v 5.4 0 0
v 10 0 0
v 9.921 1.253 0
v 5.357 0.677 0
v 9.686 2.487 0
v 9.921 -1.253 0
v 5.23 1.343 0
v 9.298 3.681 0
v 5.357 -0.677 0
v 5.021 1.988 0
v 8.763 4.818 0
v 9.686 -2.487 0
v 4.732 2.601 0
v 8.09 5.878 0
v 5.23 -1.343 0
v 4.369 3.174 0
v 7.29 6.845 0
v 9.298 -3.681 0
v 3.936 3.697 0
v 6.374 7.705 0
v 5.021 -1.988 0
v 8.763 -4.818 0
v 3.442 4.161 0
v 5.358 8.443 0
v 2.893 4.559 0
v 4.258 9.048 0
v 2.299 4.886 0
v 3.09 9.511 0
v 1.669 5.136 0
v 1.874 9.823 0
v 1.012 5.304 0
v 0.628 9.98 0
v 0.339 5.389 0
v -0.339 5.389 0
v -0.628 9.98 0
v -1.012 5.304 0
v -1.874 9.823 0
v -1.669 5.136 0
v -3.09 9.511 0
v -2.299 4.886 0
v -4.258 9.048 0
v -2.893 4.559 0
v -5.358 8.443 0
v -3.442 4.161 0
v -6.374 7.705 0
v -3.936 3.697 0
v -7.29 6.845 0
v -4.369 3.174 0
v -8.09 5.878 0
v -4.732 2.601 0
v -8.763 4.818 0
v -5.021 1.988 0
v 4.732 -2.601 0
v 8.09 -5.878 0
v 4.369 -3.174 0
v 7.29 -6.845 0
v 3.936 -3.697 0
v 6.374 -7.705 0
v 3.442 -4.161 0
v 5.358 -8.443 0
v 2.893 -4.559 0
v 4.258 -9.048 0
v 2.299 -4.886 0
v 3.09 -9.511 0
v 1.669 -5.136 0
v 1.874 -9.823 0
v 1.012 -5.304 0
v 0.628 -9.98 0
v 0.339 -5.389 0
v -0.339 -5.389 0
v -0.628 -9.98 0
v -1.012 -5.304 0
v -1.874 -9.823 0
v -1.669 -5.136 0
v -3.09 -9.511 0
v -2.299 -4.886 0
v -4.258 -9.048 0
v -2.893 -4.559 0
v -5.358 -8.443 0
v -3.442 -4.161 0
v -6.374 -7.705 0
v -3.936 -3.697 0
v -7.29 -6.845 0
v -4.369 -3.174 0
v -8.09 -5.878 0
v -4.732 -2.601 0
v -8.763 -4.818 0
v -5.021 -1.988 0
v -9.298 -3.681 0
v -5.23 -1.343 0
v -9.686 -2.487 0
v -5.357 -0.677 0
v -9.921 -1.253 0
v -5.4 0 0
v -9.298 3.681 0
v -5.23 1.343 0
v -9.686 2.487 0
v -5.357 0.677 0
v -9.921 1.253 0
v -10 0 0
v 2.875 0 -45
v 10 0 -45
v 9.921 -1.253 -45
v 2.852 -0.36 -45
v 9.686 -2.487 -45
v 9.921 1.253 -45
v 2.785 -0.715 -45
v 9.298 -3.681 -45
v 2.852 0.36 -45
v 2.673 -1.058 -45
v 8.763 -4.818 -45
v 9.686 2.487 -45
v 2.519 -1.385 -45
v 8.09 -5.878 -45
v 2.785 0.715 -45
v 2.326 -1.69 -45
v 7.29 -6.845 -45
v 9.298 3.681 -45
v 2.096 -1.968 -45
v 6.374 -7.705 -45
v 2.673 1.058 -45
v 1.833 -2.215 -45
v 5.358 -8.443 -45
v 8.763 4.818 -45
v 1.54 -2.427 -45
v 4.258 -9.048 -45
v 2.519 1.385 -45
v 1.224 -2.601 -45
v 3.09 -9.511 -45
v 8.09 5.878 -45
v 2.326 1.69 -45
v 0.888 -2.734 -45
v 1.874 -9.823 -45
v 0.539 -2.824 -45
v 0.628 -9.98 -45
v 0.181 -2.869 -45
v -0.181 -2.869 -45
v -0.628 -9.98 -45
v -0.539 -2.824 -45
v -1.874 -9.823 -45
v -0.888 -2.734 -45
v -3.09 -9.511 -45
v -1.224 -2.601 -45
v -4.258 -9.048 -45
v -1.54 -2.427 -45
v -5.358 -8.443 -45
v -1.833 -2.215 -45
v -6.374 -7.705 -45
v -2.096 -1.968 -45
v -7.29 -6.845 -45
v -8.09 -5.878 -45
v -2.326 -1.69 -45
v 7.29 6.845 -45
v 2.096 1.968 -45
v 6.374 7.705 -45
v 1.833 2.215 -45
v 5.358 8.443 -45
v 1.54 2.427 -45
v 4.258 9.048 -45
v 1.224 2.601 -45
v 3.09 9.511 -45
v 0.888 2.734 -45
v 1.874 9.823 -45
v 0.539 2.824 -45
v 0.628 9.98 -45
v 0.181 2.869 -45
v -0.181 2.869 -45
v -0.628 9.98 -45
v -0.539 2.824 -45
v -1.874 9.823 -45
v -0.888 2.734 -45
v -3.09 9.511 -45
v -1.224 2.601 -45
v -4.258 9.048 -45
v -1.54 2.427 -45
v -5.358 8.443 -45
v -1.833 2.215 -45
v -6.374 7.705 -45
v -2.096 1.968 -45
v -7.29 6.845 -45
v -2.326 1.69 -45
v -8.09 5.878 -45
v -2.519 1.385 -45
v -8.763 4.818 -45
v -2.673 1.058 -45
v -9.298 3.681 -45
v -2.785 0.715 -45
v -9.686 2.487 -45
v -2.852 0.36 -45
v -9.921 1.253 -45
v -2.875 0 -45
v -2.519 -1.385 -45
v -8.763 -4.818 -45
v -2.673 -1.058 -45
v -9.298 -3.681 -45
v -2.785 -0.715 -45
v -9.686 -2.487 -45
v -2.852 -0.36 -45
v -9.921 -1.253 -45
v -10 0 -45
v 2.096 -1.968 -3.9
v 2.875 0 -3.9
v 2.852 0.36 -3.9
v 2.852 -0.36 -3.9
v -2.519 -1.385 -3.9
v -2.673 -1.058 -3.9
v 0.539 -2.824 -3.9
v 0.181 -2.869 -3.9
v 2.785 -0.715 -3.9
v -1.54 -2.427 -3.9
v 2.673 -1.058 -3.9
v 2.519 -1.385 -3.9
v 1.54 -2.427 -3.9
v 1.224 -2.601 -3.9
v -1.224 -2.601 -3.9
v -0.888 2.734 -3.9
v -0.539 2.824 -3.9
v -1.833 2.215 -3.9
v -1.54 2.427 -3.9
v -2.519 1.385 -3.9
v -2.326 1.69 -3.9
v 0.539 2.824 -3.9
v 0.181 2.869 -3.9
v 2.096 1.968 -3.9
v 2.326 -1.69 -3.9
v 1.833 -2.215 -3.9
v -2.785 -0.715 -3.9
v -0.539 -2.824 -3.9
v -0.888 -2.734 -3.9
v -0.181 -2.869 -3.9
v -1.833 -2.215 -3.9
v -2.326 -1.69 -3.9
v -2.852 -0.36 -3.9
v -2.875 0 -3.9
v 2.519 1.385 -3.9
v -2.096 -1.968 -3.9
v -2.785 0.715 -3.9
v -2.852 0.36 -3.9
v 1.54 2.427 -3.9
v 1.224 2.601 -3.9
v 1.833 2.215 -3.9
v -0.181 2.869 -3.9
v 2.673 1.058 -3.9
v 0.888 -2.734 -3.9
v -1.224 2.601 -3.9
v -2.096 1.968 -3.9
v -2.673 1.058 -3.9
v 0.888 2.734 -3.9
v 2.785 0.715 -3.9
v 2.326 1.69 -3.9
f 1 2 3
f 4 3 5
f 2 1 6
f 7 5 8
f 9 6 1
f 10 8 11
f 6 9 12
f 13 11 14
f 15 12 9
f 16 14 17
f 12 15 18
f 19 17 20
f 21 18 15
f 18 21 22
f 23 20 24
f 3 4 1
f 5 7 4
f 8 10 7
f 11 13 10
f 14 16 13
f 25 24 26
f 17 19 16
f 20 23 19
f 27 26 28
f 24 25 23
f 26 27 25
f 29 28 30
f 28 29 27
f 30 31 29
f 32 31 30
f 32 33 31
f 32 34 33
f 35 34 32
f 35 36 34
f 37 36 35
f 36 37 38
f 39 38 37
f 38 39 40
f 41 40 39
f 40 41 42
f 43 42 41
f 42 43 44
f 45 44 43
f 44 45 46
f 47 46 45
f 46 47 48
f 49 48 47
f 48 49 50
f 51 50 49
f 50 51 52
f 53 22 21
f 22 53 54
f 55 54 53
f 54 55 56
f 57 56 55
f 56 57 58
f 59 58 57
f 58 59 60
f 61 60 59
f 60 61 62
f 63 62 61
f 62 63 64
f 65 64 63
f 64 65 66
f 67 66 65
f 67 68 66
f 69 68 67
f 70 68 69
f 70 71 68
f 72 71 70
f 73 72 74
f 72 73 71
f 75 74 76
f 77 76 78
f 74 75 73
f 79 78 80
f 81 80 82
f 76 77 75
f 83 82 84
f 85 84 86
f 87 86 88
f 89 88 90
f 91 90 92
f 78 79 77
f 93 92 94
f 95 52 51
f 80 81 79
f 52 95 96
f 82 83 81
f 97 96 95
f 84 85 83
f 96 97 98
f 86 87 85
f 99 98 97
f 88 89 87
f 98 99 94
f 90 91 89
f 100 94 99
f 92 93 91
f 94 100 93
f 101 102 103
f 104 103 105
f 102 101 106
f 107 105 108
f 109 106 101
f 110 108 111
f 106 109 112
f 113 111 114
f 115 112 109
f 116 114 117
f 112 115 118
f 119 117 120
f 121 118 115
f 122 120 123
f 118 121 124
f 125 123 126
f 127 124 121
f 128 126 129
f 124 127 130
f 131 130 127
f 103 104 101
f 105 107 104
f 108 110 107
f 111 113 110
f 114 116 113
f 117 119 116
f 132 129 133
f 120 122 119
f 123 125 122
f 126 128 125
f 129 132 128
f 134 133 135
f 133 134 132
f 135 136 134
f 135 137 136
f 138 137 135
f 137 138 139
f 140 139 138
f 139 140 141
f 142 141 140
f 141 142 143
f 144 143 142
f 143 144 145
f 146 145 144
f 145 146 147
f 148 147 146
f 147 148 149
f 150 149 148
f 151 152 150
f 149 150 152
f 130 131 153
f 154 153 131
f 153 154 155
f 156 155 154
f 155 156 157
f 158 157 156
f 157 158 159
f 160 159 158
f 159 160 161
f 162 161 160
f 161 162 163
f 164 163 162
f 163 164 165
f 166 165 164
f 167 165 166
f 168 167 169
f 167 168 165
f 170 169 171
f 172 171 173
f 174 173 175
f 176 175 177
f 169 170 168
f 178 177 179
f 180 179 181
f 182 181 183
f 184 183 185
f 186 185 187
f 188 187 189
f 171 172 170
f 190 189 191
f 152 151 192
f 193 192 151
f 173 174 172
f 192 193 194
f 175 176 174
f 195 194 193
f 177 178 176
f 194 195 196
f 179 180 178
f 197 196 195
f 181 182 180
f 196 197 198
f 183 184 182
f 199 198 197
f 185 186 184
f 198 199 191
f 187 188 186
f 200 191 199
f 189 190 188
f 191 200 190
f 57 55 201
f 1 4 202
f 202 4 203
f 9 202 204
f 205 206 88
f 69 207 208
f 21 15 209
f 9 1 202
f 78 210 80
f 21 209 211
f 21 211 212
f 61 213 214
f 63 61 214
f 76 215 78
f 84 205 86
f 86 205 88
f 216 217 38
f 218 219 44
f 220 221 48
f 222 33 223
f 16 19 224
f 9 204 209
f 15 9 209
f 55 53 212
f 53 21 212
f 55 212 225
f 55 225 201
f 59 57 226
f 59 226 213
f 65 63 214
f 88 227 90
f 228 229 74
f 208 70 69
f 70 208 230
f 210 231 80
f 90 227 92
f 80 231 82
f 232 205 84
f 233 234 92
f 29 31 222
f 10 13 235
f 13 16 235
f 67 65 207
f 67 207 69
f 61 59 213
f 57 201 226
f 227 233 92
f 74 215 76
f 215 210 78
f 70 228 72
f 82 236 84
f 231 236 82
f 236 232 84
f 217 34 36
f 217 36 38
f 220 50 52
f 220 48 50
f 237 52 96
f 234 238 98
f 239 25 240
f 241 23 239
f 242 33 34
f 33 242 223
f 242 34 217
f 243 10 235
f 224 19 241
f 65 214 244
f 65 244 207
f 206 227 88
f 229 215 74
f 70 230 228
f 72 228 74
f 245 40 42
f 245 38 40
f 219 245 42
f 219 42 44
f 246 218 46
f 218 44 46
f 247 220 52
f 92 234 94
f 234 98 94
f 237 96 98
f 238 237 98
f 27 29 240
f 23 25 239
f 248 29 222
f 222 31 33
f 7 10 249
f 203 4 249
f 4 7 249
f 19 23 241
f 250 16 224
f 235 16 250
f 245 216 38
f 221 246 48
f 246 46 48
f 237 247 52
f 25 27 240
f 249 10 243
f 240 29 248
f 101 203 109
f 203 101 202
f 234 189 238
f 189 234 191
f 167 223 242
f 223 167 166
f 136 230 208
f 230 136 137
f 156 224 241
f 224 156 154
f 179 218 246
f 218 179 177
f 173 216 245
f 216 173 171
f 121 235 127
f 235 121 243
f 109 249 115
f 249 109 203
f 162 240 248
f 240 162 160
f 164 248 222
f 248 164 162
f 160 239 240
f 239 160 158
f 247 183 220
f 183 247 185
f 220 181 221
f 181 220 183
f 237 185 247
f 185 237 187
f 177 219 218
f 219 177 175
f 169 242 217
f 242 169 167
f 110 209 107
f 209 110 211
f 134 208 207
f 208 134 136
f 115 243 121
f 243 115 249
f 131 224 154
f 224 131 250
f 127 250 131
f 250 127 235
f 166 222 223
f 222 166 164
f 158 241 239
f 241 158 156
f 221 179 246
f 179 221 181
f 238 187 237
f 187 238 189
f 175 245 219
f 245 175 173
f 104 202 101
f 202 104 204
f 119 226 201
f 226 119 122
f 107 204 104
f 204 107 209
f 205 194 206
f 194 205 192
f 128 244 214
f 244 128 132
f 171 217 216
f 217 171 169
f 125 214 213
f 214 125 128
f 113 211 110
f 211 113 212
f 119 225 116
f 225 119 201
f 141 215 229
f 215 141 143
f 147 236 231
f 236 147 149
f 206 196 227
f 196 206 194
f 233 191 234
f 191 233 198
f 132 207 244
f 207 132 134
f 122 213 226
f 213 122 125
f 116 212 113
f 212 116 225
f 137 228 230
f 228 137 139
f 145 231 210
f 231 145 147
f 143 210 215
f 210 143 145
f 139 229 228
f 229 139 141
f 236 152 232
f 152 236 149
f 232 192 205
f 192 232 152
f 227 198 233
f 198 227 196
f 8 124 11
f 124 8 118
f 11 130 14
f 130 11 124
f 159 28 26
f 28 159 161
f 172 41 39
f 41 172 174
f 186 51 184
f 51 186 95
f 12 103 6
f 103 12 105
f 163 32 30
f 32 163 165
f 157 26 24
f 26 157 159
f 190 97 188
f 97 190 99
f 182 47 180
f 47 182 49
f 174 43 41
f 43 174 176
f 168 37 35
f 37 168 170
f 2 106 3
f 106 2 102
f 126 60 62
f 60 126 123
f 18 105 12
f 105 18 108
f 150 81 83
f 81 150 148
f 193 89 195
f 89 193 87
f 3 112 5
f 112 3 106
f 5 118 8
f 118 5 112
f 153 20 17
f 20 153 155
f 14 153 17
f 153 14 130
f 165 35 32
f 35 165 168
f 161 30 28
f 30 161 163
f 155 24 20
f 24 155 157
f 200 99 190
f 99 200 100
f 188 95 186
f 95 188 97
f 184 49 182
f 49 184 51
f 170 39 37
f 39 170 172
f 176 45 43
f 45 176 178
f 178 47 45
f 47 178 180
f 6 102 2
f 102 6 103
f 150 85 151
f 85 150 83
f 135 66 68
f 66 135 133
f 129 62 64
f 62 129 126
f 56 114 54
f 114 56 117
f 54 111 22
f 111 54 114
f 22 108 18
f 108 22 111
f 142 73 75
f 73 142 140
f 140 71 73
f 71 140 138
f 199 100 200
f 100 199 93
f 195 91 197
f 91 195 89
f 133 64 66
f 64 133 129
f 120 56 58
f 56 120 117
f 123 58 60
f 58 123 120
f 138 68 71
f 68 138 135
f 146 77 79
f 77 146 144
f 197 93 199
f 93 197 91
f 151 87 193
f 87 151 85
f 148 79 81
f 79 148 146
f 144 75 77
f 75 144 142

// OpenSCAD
$fn = 50;


difference() {
	union() {
		translate(v = [0, 0, -45.0000000000]) {
			cylinder(h = 45, r = 10.0000000000);
		}
		cylinder(h = 0, r = 19.0000000000);
	}
	union() {
		translate(v = [0, 0, 0]) {
			rotate(a = [0, 0, 0]) {
				difference() {
					union() {
						#translate(v = [0, 0, -45.0000000000]) {
							cylinder(h = 45, r = 2.6000000000);
						}
						#translate(v = [0, 0, -3.9000000000]) {
							cylinder(h = 3.9000000000, r1 = 2.8750000000, r2 = 5.4000000000);
						}
						#translate(v = [0, 0, -45.0000000000]) {
							cylinder(h = 45, r = 2.8750000000);
						}
						#translate(v = [0, 0, -45.0000000000]) {
							cylinder(h = 45, r = 2.6000000000);
						}
					}
					union();
				}
			}
		}
	}
}
